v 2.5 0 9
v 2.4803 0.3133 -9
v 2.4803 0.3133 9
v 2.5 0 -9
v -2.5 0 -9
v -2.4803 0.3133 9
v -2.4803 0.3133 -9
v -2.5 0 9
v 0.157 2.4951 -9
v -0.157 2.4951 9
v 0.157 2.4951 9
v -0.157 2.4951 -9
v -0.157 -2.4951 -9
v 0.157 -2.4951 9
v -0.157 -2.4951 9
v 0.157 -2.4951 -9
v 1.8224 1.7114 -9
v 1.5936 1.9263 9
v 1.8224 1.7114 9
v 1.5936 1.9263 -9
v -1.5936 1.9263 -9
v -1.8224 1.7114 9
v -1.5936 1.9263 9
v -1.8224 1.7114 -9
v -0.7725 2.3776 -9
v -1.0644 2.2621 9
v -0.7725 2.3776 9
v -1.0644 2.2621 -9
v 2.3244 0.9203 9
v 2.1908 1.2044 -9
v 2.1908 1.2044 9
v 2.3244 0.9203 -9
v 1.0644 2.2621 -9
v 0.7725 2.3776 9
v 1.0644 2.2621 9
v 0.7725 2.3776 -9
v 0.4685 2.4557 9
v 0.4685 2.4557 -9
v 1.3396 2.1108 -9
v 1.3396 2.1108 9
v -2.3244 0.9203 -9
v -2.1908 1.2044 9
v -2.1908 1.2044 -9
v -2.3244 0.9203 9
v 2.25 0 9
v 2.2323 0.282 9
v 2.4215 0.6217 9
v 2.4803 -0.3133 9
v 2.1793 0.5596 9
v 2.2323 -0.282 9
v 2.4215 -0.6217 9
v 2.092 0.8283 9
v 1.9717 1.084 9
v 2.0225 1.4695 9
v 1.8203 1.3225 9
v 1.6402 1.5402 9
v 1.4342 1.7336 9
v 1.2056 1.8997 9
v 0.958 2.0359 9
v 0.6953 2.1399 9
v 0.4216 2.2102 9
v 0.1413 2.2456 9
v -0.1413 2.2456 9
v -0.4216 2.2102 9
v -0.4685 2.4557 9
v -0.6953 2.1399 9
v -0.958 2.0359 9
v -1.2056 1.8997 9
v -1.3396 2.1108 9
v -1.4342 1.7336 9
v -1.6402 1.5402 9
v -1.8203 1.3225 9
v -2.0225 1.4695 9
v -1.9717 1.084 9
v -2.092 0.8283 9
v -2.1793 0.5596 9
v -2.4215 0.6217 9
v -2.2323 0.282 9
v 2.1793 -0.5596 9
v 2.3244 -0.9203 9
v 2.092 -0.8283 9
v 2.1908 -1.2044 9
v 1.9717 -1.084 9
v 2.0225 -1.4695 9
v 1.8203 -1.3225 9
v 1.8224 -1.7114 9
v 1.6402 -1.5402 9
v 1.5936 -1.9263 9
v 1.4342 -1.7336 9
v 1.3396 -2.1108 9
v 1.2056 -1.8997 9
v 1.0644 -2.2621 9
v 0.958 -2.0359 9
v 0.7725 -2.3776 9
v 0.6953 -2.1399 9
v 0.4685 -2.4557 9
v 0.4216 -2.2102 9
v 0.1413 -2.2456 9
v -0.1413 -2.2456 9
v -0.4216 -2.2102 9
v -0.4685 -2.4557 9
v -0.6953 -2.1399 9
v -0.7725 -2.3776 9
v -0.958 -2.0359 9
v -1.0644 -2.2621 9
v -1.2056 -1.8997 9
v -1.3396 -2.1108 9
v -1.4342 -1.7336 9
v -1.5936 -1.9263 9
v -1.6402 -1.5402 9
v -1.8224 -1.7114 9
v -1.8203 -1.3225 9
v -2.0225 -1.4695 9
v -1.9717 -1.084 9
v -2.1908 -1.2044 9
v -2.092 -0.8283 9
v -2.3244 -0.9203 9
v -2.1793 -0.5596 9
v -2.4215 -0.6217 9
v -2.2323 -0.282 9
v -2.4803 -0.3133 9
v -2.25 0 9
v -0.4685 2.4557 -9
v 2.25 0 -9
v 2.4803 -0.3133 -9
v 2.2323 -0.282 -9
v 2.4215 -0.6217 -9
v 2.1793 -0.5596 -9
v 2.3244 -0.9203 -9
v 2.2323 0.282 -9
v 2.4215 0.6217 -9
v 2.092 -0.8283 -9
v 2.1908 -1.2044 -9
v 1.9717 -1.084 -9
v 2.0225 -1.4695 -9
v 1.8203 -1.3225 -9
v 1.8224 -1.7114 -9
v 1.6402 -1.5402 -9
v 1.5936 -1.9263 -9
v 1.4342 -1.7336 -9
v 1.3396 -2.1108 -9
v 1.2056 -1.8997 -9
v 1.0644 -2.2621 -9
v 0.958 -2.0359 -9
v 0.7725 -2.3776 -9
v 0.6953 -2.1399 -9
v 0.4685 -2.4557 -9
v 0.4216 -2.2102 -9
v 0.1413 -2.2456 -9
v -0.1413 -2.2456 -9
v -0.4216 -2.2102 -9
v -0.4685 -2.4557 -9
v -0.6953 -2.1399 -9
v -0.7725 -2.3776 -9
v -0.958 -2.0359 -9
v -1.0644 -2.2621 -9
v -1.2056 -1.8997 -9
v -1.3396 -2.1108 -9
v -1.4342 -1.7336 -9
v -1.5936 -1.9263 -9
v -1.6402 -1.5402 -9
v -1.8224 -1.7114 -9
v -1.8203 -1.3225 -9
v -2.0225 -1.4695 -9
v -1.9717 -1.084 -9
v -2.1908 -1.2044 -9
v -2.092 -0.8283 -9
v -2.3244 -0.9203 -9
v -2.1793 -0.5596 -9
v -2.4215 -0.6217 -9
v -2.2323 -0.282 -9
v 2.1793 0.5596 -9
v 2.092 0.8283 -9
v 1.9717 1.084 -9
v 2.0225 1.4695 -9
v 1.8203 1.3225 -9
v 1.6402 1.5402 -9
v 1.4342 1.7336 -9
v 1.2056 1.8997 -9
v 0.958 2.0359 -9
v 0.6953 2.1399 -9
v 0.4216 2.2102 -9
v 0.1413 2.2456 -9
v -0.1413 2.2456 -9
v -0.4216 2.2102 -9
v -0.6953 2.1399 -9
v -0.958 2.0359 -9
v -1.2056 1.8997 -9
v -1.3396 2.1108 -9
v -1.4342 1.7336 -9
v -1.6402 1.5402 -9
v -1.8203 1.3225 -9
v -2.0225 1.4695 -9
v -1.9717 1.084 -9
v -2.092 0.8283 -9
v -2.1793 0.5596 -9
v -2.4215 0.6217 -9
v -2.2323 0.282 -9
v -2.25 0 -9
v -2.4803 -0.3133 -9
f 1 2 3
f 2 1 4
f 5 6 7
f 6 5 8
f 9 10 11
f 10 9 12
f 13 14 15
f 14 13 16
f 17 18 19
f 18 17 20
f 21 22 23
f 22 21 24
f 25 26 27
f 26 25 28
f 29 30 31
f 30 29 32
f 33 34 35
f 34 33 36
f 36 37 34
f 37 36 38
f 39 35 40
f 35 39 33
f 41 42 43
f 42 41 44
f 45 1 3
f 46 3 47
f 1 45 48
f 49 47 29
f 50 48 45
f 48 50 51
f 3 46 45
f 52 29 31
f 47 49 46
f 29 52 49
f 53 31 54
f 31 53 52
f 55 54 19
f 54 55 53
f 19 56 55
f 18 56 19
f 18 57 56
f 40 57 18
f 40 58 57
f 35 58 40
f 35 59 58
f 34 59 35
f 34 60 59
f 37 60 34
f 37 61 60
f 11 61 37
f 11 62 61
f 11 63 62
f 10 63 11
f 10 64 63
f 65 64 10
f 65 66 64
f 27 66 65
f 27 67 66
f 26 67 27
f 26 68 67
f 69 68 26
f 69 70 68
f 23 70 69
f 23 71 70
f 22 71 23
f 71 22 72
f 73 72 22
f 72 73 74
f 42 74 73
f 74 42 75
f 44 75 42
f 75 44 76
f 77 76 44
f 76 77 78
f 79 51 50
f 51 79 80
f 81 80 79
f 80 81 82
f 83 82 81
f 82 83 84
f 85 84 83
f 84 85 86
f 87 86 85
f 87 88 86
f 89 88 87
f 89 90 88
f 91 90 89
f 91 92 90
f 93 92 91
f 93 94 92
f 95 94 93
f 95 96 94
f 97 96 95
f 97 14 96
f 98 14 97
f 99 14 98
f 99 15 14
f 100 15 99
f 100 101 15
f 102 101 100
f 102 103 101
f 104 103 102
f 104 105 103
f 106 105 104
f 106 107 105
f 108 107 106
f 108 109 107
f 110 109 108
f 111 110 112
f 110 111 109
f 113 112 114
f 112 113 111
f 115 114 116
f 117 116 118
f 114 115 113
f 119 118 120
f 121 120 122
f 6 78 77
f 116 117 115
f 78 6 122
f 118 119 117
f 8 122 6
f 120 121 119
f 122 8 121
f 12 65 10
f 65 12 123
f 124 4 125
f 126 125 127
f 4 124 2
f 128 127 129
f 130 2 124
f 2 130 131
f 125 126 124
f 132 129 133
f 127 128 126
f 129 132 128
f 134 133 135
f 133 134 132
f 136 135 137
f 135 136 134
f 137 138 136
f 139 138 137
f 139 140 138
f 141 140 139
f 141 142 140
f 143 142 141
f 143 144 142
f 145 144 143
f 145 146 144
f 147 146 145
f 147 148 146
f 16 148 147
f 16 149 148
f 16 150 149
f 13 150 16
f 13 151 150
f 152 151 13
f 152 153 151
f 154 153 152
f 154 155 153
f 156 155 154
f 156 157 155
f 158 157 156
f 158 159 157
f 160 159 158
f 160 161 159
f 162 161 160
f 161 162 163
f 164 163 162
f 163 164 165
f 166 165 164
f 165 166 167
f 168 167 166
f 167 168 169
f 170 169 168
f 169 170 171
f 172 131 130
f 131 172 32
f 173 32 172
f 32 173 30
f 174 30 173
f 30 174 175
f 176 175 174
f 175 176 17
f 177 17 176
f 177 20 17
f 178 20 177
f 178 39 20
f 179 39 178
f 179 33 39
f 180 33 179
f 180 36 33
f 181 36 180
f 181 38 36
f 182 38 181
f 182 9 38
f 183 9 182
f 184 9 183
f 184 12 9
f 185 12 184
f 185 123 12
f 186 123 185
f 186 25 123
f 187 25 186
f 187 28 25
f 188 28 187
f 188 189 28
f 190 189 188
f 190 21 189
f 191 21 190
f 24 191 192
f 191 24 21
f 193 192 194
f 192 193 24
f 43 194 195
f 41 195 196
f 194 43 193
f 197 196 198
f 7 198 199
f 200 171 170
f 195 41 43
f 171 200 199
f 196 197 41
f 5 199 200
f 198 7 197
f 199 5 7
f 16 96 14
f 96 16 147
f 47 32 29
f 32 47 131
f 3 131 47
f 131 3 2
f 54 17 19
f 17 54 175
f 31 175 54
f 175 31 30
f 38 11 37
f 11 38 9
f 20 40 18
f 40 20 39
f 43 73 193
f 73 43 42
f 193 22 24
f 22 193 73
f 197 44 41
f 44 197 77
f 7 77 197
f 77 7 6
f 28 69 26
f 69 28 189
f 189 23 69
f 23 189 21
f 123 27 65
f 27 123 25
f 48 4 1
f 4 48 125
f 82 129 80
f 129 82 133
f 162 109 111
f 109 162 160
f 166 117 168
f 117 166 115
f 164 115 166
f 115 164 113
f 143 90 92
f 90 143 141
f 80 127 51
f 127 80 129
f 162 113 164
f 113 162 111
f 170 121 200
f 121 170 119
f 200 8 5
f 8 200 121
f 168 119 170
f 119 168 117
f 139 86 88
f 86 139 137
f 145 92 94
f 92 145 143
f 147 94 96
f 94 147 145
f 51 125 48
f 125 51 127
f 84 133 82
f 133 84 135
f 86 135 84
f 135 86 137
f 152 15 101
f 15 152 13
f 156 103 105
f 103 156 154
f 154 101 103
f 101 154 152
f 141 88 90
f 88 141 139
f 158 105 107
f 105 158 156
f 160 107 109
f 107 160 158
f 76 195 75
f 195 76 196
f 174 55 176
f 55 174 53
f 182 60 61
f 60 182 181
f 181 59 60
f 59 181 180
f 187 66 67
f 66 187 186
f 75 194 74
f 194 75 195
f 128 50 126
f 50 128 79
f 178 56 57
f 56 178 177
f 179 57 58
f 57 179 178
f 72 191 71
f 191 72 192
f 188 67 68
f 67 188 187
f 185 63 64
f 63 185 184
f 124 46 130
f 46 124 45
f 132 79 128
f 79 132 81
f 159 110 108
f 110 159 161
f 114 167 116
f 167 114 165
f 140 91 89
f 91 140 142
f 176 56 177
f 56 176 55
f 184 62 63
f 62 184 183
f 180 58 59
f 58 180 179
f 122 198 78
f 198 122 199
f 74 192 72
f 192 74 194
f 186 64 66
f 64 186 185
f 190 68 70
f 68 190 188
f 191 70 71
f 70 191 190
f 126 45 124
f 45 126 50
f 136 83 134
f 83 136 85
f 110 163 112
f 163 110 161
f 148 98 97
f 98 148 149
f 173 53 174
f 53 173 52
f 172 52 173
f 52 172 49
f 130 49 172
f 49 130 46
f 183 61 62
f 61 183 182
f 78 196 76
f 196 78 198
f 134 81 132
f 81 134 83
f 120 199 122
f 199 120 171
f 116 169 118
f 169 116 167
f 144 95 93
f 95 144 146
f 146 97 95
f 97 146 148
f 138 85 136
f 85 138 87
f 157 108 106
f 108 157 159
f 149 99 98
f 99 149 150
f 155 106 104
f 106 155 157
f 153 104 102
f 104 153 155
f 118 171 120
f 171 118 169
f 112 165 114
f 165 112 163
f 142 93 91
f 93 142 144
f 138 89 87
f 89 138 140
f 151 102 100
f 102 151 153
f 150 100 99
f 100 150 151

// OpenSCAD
$fn = 50;


difference() {
	union() {
		translate(v = [0, 0, -9.0000000000]) {
			cylinder(h = 18, r = 2.5000000000);
		}
	}
	union() {
		translate(v = [0, 0, -100.0000000000]) {
			cylinder(h = 200, r = 2.2500000000);
		}
	}
}
